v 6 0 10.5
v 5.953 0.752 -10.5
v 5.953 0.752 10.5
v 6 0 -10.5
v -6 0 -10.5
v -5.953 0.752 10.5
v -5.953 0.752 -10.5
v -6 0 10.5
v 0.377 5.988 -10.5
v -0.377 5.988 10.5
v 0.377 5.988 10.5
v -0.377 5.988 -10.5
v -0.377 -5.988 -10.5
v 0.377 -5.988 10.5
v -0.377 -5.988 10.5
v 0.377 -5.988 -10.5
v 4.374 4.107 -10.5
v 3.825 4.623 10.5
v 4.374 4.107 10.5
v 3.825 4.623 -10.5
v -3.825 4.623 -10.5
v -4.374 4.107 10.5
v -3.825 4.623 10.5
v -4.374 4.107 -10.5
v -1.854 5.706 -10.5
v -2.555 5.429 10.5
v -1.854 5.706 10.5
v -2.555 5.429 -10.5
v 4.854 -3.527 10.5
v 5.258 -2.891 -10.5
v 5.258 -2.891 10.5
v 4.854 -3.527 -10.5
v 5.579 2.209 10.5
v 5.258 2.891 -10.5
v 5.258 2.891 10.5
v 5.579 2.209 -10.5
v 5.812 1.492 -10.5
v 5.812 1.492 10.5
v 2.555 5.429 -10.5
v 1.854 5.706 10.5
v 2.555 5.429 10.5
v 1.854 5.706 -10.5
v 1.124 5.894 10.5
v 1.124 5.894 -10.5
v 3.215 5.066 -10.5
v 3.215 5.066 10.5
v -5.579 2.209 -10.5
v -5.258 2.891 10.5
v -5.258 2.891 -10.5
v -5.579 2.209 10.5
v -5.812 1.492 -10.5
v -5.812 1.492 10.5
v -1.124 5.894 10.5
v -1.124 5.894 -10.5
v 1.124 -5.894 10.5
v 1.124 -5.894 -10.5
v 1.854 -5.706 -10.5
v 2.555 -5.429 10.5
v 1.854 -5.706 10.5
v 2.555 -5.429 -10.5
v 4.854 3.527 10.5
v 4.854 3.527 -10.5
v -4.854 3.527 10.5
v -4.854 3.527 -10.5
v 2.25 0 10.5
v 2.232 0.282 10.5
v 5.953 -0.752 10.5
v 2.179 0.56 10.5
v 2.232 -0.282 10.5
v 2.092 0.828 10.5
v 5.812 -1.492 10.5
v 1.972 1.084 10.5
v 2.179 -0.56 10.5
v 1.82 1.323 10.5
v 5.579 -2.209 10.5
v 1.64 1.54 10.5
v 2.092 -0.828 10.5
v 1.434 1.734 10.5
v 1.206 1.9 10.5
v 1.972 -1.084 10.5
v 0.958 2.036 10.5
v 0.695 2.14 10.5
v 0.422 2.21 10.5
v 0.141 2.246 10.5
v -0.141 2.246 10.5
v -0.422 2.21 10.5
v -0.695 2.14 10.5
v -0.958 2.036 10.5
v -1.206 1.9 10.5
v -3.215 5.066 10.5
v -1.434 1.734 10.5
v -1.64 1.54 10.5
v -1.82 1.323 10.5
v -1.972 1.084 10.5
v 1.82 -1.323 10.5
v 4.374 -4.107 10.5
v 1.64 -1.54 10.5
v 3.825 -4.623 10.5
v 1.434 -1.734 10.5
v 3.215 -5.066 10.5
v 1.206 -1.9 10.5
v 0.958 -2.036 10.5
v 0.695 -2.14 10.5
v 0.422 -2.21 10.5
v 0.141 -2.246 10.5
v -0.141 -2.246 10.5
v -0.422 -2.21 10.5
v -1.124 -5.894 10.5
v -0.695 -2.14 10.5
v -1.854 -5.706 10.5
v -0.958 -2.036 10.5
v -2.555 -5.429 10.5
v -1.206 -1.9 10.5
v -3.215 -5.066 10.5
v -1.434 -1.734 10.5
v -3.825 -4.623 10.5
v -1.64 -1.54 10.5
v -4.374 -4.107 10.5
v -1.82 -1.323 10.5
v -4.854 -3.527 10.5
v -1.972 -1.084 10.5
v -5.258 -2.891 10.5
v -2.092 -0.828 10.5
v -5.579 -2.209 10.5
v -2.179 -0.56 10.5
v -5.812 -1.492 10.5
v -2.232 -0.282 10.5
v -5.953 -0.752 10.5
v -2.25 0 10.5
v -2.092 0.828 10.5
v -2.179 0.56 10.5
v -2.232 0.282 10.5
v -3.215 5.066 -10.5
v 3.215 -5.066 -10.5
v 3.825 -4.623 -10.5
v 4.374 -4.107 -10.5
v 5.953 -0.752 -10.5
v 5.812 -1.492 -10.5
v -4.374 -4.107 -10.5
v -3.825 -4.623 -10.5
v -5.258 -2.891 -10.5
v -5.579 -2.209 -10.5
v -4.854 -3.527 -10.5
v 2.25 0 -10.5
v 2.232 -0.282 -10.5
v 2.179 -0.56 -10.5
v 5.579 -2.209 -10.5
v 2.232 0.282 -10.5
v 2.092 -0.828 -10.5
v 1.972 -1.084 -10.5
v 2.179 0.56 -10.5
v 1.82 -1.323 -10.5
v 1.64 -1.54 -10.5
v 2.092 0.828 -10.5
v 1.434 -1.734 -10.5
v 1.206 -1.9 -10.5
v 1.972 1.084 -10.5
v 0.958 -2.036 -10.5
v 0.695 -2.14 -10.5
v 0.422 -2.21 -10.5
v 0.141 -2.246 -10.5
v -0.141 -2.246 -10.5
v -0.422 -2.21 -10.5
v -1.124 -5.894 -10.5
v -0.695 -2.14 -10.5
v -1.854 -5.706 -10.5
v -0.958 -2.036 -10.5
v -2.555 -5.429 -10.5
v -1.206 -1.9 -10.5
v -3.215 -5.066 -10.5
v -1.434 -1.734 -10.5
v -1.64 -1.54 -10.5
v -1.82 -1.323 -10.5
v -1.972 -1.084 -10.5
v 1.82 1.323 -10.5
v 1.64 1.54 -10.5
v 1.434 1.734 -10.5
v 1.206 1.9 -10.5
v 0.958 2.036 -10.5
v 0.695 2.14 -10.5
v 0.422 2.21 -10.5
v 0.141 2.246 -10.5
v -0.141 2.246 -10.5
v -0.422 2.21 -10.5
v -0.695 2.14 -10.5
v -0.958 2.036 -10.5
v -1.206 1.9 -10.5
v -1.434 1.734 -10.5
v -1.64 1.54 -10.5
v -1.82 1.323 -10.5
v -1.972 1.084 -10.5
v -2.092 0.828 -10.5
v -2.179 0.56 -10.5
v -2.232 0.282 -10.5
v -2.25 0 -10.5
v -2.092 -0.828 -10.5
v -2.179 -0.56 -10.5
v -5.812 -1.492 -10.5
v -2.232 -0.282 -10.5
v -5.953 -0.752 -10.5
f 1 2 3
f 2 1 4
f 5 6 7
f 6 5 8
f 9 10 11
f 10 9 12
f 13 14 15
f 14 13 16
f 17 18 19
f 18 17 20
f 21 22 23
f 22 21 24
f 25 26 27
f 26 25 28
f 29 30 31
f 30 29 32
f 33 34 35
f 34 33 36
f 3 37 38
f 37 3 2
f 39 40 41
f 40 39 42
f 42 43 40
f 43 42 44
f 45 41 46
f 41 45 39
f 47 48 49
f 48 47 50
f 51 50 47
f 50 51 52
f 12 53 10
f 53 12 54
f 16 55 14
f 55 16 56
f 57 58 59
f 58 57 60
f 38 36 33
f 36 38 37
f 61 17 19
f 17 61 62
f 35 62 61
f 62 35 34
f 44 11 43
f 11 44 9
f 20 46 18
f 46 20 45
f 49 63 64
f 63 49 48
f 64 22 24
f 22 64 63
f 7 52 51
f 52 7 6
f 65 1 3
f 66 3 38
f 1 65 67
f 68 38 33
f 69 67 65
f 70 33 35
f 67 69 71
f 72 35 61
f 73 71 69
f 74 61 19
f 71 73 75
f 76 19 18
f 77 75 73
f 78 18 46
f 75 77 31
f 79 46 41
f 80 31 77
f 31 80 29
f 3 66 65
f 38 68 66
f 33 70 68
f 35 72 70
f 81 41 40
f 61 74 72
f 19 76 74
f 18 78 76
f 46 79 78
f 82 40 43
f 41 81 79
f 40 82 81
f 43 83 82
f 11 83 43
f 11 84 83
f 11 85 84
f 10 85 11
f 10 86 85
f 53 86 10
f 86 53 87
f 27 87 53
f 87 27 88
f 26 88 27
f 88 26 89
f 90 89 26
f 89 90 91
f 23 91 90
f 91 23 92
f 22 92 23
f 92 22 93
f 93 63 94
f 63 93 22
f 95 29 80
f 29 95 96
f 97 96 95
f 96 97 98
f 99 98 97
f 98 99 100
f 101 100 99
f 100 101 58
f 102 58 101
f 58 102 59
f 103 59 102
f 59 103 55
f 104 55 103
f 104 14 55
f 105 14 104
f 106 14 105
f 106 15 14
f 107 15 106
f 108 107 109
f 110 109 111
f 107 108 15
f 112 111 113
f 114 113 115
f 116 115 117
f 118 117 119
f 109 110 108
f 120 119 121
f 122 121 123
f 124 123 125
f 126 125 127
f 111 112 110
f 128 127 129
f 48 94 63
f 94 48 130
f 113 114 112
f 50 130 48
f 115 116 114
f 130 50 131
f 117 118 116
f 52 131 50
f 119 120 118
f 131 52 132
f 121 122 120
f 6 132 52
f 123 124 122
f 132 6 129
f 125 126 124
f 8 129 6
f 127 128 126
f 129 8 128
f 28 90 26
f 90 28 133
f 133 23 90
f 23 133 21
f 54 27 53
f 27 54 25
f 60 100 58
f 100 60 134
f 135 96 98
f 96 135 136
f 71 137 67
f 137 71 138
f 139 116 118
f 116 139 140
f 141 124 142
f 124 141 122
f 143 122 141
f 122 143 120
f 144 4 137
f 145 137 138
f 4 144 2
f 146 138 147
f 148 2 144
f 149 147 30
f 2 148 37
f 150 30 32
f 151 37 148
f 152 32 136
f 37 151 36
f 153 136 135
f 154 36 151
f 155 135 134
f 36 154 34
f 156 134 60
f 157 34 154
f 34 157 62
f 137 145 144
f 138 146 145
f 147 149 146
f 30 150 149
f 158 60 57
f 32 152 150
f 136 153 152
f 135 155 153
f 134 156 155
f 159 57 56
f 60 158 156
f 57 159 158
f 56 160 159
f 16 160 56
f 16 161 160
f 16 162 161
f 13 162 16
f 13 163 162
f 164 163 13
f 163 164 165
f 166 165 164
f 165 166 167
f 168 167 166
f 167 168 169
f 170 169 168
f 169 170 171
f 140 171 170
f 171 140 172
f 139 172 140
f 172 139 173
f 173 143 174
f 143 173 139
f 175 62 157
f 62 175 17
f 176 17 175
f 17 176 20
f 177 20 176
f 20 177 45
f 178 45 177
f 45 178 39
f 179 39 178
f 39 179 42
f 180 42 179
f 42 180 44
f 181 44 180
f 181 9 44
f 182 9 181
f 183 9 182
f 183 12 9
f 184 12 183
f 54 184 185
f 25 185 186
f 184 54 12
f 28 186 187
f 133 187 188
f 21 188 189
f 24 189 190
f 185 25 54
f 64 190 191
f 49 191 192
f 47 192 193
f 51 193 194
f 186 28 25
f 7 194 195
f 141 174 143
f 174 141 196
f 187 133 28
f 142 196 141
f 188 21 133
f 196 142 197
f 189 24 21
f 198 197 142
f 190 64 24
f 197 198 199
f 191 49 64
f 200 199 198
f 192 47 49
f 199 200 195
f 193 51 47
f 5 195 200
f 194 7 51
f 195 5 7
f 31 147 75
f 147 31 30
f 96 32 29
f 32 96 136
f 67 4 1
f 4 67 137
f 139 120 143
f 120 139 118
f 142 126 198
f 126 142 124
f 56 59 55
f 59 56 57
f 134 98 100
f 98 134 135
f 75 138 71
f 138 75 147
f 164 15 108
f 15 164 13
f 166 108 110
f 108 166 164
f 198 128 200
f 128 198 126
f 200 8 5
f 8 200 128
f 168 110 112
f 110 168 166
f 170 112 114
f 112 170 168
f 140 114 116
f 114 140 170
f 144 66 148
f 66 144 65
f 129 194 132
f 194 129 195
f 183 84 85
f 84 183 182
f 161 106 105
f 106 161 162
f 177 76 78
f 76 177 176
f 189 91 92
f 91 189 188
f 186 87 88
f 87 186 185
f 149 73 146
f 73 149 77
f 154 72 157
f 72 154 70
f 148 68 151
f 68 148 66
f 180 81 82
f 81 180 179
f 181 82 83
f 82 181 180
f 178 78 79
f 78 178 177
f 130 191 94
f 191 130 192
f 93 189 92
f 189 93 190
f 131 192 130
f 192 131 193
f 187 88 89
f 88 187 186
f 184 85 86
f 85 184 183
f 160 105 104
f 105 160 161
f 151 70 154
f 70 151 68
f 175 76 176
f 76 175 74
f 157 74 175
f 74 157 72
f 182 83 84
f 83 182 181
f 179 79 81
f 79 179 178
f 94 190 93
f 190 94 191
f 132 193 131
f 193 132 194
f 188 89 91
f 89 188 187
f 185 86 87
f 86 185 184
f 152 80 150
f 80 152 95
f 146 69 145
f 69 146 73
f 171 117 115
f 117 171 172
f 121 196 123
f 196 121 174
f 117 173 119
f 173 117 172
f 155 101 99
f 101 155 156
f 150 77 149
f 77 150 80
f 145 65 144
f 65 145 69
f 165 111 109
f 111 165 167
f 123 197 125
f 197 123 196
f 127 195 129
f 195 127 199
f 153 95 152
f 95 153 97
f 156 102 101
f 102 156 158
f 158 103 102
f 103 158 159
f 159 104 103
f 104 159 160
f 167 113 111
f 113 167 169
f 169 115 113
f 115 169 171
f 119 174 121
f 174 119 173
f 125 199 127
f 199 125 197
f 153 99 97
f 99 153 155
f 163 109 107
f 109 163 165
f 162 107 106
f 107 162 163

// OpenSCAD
$fn = 50;


difference() {
	union() {
		translate(v = [0, 0, -10.5000000000]) {
			cylinder(h = 21, r = 6.0000000000);
		}
	}
	union() {
		translate(v = [0, 0, -100.0000000000]) {
			cylinder(h = 200, r = 2.2500000000);
		}
	}
}
